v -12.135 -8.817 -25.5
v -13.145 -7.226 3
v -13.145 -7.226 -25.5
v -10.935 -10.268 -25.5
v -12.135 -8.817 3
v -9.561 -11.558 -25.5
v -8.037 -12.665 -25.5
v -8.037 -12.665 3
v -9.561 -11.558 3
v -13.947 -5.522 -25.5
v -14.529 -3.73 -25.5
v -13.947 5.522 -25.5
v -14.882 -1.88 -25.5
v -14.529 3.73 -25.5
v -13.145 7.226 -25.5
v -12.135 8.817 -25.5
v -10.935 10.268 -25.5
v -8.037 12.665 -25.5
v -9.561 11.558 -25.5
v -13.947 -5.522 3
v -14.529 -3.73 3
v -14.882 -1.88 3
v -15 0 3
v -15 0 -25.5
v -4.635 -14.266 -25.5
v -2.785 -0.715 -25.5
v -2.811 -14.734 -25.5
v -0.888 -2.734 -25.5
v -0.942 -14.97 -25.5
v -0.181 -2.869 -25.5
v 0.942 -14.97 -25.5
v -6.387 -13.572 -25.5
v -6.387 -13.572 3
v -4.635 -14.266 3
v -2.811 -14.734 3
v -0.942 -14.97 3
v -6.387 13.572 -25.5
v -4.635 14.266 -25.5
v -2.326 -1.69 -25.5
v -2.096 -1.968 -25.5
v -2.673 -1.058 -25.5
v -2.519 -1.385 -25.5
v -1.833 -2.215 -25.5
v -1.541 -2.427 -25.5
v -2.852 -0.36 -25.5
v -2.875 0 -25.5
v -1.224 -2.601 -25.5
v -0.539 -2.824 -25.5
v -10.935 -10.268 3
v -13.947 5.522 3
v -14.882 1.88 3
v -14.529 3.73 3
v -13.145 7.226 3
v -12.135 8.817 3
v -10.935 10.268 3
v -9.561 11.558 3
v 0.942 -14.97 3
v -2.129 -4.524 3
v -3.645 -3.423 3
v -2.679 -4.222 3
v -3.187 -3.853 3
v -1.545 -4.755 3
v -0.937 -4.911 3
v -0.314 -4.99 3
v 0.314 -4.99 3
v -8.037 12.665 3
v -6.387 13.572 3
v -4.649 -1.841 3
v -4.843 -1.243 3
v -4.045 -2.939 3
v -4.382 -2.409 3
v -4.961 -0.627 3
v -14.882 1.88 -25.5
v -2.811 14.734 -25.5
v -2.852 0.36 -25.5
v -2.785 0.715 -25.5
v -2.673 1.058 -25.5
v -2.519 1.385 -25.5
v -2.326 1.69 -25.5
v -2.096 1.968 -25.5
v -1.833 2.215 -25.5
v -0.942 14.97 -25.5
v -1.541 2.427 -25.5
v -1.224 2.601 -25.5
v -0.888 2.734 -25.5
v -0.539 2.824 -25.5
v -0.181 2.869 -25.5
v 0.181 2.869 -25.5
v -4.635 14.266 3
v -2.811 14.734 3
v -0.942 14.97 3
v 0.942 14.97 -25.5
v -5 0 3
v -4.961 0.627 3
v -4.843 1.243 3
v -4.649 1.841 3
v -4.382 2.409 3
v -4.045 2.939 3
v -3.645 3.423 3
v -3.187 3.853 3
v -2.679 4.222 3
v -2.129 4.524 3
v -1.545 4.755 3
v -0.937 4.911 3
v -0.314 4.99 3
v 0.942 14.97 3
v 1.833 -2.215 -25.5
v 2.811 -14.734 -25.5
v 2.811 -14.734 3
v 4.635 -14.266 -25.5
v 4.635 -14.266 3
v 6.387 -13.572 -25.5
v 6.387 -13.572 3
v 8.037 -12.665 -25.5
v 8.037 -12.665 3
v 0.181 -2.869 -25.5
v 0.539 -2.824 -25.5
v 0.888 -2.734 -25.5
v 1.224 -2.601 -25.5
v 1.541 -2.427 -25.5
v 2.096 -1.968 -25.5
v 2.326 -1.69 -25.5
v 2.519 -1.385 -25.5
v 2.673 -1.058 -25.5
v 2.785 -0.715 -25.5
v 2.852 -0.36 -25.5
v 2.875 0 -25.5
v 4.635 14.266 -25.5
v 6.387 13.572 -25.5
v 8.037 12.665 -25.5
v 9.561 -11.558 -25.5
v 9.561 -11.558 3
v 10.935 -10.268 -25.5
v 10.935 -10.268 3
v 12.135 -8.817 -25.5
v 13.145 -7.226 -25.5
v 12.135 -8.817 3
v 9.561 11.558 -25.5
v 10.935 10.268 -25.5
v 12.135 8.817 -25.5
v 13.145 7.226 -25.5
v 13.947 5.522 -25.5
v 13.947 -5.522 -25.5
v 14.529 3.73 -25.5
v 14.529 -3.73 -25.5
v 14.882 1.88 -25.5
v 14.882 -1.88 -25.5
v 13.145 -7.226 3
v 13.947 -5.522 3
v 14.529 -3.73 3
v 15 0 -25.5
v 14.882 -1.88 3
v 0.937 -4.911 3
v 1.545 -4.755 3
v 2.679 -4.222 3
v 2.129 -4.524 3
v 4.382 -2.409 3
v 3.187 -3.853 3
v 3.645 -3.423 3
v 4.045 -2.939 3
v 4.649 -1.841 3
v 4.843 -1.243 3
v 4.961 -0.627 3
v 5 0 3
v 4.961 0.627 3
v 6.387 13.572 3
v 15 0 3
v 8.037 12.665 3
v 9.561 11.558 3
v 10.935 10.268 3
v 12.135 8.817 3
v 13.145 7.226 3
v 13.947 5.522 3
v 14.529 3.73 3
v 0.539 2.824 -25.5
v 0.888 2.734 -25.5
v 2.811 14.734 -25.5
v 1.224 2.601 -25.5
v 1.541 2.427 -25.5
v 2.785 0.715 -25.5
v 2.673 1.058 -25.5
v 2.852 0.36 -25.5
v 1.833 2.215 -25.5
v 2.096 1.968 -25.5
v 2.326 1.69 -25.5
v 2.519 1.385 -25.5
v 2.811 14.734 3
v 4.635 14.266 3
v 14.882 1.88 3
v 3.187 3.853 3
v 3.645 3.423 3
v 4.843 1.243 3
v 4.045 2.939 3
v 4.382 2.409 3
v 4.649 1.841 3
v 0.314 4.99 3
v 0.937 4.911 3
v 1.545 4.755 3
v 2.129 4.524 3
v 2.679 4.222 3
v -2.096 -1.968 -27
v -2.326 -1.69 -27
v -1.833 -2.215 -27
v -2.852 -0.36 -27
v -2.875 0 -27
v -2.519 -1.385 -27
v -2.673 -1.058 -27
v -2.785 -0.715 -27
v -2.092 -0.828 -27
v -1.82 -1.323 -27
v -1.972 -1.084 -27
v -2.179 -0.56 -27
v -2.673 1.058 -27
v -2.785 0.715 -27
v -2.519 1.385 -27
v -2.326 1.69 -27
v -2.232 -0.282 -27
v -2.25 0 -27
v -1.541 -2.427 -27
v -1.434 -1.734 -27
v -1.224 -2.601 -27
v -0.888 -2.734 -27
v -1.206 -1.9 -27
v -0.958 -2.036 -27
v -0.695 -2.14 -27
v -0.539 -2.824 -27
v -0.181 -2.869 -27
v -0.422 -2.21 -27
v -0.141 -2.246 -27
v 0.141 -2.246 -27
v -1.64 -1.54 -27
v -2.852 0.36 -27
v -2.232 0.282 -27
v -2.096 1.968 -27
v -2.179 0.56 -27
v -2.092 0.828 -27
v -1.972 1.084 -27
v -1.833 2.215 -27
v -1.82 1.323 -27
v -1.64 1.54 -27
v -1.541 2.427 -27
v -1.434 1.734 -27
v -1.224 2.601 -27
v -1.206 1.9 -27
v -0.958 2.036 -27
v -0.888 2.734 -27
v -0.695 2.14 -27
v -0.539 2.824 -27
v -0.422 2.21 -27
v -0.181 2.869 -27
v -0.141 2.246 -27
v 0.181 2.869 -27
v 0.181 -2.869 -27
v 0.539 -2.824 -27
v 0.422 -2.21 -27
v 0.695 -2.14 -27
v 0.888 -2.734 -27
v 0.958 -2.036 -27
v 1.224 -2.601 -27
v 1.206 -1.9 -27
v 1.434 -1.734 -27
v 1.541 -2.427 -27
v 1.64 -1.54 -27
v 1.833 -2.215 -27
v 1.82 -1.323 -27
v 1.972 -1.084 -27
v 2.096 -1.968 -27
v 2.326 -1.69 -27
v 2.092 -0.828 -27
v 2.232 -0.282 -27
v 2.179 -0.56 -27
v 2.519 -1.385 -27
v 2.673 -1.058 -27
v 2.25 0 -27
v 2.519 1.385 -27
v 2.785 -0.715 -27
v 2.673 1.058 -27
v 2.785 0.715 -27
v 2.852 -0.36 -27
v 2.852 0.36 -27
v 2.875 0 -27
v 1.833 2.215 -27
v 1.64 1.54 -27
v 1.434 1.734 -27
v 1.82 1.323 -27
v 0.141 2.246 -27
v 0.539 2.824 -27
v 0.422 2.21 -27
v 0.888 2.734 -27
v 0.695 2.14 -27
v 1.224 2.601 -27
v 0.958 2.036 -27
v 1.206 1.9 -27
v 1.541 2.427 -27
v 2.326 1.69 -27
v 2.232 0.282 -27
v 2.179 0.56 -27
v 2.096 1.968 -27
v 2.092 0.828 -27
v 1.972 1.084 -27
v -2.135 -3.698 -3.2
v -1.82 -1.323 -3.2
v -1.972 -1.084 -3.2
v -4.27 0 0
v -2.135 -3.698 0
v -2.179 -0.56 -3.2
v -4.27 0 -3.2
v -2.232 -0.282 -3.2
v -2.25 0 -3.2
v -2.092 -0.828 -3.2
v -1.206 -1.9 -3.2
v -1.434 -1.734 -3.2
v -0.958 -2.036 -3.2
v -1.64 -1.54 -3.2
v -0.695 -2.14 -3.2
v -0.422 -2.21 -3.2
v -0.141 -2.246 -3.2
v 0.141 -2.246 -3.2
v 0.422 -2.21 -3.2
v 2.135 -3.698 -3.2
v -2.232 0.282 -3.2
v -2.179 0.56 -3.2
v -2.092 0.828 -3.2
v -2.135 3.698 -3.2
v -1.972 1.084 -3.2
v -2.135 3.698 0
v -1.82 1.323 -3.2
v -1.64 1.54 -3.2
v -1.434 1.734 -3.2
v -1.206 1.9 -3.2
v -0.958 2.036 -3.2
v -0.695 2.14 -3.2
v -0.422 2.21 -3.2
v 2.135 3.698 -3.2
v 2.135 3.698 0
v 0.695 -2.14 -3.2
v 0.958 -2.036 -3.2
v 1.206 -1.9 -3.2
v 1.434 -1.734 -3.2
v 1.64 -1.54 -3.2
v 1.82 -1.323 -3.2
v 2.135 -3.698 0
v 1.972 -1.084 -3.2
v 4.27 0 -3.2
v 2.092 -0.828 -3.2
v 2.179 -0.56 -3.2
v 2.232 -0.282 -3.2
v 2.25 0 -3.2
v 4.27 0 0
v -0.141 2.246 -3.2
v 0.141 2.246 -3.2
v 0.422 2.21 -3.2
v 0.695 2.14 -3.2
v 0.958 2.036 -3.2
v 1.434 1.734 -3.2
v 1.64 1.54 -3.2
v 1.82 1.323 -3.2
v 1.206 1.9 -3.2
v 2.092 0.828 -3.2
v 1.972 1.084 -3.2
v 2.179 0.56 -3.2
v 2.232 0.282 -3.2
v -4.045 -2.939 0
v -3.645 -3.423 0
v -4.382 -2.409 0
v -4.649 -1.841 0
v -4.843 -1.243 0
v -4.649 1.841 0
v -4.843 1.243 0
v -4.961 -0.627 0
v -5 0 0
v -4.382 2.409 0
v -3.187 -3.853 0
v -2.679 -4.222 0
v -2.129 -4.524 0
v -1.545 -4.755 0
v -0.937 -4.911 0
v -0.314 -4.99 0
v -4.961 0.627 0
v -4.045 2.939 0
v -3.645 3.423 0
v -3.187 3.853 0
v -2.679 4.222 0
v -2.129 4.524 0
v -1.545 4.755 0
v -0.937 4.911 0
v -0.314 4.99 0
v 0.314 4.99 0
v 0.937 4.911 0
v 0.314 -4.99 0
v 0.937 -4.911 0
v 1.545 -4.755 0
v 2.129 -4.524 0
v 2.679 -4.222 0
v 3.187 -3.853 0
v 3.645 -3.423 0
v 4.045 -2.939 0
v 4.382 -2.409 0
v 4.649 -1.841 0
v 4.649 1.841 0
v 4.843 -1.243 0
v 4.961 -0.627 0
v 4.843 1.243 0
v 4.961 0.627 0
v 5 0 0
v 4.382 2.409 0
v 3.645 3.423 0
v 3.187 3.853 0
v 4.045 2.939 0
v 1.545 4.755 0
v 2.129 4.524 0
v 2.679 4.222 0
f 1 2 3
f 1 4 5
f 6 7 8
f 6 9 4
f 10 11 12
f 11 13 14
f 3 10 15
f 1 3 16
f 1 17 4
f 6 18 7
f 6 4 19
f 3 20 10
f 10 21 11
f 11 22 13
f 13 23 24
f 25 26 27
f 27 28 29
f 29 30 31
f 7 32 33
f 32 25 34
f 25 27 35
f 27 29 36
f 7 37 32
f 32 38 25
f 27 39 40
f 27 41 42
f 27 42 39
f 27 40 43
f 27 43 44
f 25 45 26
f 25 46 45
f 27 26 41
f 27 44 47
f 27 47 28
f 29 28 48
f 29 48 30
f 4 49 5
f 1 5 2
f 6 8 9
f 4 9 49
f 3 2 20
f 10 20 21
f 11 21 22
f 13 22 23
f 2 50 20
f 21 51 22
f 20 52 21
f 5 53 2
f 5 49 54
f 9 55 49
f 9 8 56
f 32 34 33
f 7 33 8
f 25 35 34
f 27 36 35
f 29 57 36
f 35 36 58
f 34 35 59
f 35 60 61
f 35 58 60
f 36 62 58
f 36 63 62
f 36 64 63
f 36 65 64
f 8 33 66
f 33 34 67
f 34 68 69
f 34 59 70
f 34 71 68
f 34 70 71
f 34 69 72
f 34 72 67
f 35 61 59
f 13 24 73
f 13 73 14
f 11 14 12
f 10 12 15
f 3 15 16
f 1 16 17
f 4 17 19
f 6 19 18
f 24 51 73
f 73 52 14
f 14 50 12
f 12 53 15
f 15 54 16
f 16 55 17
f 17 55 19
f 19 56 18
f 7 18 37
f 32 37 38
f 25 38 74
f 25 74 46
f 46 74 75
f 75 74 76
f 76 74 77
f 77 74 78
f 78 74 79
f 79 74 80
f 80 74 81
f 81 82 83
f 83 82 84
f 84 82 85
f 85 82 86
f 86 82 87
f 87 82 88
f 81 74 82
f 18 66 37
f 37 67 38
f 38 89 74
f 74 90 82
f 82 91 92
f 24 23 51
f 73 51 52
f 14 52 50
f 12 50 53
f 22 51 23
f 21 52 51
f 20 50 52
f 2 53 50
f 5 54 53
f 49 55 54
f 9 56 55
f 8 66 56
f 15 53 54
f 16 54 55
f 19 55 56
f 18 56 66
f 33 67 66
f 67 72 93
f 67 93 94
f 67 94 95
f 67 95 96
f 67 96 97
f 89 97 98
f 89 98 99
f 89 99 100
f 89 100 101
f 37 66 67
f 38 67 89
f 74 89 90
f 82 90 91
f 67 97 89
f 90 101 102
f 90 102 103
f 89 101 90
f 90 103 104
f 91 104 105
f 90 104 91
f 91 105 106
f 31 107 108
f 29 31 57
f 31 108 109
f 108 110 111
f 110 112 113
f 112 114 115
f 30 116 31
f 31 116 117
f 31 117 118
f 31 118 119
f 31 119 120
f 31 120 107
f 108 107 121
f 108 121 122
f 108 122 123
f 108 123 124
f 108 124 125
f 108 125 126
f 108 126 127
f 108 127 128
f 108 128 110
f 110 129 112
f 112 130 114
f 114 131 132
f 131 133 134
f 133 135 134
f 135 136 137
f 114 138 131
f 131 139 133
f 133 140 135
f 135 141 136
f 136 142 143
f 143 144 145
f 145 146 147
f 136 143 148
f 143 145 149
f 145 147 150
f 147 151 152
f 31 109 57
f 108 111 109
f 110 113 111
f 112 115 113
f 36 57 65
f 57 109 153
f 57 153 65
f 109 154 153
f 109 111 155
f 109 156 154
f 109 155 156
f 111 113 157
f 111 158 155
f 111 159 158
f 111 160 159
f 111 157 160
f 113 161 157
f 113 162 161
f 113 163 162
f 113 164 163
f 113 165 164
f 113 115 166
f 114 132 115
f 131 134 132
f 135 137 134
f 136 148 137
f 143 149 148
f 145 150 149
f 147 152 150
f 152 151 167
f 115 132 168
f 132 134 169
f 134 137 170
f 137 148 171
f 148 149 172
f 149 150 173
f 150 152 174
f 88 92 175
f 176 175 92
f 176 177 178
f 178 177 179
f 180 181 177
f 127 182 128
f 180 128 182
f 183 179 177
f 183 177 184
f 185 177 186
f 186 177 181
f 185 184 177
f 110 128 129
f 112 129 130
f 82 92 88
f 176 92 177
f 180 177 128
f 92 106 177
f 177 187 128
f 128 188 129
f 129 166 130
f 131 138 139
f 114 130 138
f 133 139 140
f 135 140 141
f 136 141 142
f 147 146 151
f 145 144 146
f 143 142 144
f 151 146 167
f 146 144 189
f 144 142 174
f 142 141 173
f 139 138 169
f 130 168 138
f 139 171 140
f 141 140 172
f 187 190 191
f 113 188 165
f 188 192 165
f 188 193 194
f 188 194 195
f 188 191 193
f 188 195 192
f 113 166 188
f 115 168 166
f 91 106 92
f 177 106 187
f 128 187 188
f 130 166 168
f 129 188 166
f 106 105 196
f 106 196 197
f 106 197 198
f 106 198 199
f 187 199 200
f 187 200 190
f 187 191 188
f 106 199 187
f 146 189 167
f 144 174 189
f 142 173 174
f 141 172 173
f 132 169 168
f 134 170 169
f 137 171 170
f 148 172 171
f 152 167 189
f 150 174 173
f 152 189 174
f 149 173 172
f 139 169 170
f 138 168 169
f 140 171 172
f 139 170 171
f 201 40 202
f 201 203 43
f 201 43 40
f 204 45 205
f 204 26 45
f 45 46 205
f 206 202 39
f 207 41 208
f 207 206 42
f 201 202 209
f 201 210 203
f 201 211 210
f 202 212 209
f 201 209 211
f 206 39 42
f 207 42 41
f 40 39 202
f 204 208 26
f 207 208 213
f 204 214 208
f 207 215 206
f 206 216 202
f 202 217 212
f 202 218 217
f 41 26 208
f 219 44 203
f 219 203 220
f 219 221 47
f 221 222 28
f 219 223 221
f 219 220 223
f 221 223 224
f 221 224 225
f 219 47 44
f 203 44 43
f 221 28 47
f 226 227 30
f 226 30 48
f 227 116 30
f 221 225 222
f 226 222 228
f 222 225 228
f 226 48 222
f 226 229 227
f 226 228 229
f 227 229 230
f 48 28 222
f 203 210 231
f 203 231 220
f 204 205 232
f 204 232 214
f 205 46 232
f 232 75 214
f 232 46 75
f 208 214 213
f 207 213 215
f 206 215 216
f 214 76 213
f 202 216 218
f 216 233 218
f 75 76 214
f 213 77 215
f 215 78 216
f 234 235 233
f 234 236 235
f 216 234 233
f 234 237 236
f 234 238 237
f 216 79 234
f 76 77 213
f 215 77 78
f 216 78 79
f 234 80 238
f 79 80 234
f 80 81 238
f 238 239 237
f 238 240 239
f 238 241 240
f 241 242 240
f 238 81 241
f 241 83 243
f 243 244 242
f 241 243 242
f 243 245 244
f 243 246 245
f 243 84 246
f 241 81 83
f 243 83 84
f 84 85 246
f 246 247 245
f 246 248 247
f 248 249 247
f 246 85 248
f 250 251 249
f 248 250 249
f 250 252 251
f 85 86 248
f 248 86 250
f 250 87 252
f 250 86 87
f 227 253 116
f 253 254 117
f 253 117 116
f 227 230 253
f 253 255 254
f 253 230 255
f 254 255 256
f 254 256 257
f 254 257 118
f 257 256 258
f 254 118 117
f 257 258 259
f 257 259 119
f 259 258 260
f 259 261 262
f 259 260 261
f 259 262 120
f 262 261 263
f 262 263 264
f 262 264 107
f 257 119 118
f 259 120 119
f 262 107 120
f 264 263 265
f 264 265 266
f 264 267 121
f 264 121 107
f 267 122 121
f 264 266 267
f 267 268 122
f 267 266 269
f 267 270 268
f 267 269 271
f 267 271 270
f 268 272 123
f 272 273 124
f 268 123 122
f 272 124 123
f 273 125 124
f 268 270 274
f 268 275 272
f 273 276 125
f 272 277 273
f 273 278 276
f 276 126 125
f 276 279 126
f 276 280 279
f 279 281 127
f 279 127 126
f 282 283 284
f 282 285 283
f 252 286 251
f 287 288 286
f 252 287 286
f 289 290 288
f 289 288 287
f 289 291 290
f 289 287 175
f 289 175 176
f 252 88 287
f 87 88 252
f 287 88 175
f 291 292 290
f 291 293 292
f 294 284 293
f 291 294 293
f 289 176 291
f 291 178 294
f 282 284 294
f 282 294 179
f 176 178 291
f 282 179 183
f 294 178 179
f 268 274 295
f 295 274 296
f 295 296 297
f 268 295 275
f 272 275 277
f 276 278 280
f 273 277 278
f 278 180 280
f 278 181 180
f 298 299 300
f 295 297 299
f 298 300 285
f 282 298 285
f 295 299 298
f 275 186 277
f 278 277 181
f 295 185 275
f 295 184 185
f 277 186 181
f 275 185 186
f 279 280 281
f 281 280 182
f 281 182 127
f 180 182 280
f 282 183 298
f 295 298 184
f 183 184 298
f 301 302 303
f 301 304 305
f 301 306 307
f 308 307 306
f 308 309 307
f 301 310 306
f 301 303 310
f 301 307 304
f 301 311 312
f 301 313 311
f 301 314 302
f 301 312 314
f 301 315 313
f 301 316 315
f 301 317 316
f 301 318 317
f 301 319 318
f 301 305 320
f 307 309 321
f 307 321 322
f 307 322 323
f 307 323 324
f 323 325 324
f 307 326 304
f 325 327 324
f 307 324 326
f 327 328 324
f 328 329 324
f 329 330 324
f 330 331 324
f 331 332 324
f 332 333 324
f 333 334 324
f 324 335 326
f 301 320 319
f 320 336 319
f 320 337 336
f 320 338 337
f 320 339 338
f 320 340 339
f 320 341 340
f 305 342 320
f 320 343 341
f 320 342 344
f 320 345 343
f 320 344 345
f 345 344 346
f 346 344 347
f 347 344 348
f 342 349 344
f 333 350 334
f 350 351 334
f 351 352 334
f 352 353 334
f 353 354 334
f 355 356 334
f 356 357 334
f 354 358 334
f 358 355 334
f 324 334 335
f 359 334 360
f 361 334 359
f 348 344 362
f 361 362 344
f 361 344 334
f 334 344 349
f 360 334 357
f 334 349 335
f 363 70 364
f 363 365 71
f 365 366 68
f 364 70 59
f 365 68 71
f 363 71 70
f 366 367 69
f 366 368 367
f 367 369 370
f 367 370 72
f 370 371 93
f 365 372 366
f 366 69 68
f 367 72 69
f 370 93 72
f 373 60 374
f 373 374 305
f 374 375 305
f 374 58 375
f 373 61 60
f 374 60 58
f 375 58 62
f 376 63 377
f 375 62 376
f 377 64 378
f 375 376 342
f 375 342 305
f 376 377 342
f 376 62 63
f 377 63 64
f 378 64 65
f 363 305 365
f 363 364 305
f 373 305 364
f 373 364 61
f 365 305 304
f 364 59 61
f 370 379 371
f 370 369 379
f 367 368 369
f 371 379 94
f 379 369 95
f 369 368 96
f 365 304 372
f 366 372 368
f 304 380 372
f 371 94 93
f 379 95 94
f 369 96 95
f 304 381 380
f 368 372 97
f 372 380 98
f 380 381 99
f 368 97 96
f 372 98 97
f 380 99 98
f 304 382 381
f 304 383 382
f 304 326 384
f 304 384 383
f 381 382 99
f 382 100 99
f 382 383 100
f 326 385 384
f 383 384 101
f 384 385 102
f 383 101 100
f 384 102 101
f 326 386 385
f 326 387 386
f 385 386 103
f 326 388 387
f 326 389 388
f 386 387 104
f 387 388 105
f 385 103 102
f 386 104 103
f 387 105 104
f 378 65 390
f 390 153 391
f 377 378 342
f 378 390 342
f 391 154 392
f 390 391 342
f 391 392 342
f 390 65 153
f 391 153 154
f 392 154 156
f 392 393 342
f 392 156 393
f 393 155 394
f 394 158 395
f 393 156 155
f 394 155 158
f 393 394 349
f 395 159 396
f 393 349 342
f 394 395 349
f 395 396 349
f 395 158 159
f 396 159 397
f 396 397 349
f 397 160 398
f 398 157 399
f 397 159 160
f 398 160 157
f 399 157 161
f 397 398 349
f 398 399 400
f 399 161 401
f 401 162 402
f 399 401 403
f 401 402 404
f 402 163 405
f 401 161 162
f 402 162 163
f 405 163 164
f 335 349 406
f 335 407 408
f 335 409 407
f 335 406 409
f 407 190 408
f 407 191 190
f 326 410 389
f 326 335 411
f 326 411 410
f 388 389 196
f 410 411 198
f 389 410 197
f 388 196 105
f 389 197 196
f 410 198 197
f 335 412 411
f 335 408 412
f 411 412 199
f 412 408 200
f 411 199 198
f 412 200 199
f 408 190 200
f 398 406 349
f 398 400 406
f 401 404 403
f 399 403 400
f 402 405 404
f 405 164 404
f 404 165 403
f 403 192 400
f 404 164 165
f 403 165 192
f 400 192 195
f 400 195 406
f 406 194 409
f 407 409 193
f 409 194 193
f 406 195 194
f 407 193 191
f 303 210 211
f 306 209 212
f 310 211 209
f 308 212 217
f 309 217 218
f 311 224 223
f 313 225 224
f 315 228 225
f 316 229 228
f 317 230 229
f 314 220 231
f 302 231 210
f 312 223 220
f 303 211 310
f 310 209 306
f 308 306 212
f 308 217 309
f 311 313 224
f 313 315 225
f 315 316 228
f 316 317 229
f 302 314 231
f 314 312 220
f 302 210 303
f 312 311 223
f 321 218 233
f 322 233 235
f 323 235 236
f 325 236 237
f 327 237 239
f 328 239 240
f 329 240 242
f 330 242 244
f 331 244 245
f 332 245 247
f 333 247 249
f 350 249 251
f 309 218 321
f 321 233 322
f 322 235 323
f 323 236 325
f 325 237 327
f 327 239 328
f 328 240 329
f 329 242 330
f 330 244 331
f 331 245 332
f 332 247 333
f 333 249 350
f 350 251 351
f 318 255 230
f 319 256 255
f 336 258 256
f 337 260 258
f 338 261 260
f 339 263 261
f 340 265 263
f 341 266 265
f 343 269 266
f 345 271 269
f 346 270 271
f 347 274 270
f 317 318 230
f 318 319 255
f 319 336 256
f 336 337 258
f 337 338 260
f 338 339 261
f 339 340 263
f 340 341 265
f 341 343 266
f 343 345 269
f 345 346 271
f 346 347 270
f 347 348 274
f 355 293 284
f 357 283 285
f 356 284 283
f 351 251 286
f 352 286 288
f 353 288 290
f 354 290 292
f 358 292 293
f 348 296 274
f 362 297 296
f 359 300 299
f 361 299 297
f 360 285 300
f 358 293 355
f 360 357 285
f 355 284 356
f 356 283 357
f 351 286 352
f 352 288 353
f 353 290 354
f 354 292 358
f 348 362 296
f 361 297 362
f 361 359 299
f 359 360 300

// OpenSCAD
$fn = 50;


difference() {
	union() {
		translate(v = [0, 0, -25.5000000000]) {
			cylinder(h = 28.5000000000, r = 15.0000000000);
		}
		#translate(v = [0, 0, -27.0000000000]) {
			cylinder(h = 27, r = 2.8750000000);
		}
	}
	union() {
		translate(v = [0, 0, 0]) {
			rotate(a = [0, 0, 0]) {
				difference() {
					union() {
						translate(v = [0, 0, -3.2000000000]) {
							linear_extrude(height = 3.2000000000) {
								polygon(points = [[4.2698000000, 0.0000000000], [2.1349000000, 3.6977552691], [-2.1349000000, 3.6977552691], [-4.2698000000, 0.0000000000], [-2.1349000000, -3.6977552691], [2.1349000000, -3.6977552691]]);
							}
						}
					}
					union();
				}
			}
		}
		#cylinder(h = 3, r = 5.0000000000);
		#translate(v = [0, 0, -100.0000000000]) {
			cylinder(h = 200, r = 2.2500000000);
		}
	}
}
